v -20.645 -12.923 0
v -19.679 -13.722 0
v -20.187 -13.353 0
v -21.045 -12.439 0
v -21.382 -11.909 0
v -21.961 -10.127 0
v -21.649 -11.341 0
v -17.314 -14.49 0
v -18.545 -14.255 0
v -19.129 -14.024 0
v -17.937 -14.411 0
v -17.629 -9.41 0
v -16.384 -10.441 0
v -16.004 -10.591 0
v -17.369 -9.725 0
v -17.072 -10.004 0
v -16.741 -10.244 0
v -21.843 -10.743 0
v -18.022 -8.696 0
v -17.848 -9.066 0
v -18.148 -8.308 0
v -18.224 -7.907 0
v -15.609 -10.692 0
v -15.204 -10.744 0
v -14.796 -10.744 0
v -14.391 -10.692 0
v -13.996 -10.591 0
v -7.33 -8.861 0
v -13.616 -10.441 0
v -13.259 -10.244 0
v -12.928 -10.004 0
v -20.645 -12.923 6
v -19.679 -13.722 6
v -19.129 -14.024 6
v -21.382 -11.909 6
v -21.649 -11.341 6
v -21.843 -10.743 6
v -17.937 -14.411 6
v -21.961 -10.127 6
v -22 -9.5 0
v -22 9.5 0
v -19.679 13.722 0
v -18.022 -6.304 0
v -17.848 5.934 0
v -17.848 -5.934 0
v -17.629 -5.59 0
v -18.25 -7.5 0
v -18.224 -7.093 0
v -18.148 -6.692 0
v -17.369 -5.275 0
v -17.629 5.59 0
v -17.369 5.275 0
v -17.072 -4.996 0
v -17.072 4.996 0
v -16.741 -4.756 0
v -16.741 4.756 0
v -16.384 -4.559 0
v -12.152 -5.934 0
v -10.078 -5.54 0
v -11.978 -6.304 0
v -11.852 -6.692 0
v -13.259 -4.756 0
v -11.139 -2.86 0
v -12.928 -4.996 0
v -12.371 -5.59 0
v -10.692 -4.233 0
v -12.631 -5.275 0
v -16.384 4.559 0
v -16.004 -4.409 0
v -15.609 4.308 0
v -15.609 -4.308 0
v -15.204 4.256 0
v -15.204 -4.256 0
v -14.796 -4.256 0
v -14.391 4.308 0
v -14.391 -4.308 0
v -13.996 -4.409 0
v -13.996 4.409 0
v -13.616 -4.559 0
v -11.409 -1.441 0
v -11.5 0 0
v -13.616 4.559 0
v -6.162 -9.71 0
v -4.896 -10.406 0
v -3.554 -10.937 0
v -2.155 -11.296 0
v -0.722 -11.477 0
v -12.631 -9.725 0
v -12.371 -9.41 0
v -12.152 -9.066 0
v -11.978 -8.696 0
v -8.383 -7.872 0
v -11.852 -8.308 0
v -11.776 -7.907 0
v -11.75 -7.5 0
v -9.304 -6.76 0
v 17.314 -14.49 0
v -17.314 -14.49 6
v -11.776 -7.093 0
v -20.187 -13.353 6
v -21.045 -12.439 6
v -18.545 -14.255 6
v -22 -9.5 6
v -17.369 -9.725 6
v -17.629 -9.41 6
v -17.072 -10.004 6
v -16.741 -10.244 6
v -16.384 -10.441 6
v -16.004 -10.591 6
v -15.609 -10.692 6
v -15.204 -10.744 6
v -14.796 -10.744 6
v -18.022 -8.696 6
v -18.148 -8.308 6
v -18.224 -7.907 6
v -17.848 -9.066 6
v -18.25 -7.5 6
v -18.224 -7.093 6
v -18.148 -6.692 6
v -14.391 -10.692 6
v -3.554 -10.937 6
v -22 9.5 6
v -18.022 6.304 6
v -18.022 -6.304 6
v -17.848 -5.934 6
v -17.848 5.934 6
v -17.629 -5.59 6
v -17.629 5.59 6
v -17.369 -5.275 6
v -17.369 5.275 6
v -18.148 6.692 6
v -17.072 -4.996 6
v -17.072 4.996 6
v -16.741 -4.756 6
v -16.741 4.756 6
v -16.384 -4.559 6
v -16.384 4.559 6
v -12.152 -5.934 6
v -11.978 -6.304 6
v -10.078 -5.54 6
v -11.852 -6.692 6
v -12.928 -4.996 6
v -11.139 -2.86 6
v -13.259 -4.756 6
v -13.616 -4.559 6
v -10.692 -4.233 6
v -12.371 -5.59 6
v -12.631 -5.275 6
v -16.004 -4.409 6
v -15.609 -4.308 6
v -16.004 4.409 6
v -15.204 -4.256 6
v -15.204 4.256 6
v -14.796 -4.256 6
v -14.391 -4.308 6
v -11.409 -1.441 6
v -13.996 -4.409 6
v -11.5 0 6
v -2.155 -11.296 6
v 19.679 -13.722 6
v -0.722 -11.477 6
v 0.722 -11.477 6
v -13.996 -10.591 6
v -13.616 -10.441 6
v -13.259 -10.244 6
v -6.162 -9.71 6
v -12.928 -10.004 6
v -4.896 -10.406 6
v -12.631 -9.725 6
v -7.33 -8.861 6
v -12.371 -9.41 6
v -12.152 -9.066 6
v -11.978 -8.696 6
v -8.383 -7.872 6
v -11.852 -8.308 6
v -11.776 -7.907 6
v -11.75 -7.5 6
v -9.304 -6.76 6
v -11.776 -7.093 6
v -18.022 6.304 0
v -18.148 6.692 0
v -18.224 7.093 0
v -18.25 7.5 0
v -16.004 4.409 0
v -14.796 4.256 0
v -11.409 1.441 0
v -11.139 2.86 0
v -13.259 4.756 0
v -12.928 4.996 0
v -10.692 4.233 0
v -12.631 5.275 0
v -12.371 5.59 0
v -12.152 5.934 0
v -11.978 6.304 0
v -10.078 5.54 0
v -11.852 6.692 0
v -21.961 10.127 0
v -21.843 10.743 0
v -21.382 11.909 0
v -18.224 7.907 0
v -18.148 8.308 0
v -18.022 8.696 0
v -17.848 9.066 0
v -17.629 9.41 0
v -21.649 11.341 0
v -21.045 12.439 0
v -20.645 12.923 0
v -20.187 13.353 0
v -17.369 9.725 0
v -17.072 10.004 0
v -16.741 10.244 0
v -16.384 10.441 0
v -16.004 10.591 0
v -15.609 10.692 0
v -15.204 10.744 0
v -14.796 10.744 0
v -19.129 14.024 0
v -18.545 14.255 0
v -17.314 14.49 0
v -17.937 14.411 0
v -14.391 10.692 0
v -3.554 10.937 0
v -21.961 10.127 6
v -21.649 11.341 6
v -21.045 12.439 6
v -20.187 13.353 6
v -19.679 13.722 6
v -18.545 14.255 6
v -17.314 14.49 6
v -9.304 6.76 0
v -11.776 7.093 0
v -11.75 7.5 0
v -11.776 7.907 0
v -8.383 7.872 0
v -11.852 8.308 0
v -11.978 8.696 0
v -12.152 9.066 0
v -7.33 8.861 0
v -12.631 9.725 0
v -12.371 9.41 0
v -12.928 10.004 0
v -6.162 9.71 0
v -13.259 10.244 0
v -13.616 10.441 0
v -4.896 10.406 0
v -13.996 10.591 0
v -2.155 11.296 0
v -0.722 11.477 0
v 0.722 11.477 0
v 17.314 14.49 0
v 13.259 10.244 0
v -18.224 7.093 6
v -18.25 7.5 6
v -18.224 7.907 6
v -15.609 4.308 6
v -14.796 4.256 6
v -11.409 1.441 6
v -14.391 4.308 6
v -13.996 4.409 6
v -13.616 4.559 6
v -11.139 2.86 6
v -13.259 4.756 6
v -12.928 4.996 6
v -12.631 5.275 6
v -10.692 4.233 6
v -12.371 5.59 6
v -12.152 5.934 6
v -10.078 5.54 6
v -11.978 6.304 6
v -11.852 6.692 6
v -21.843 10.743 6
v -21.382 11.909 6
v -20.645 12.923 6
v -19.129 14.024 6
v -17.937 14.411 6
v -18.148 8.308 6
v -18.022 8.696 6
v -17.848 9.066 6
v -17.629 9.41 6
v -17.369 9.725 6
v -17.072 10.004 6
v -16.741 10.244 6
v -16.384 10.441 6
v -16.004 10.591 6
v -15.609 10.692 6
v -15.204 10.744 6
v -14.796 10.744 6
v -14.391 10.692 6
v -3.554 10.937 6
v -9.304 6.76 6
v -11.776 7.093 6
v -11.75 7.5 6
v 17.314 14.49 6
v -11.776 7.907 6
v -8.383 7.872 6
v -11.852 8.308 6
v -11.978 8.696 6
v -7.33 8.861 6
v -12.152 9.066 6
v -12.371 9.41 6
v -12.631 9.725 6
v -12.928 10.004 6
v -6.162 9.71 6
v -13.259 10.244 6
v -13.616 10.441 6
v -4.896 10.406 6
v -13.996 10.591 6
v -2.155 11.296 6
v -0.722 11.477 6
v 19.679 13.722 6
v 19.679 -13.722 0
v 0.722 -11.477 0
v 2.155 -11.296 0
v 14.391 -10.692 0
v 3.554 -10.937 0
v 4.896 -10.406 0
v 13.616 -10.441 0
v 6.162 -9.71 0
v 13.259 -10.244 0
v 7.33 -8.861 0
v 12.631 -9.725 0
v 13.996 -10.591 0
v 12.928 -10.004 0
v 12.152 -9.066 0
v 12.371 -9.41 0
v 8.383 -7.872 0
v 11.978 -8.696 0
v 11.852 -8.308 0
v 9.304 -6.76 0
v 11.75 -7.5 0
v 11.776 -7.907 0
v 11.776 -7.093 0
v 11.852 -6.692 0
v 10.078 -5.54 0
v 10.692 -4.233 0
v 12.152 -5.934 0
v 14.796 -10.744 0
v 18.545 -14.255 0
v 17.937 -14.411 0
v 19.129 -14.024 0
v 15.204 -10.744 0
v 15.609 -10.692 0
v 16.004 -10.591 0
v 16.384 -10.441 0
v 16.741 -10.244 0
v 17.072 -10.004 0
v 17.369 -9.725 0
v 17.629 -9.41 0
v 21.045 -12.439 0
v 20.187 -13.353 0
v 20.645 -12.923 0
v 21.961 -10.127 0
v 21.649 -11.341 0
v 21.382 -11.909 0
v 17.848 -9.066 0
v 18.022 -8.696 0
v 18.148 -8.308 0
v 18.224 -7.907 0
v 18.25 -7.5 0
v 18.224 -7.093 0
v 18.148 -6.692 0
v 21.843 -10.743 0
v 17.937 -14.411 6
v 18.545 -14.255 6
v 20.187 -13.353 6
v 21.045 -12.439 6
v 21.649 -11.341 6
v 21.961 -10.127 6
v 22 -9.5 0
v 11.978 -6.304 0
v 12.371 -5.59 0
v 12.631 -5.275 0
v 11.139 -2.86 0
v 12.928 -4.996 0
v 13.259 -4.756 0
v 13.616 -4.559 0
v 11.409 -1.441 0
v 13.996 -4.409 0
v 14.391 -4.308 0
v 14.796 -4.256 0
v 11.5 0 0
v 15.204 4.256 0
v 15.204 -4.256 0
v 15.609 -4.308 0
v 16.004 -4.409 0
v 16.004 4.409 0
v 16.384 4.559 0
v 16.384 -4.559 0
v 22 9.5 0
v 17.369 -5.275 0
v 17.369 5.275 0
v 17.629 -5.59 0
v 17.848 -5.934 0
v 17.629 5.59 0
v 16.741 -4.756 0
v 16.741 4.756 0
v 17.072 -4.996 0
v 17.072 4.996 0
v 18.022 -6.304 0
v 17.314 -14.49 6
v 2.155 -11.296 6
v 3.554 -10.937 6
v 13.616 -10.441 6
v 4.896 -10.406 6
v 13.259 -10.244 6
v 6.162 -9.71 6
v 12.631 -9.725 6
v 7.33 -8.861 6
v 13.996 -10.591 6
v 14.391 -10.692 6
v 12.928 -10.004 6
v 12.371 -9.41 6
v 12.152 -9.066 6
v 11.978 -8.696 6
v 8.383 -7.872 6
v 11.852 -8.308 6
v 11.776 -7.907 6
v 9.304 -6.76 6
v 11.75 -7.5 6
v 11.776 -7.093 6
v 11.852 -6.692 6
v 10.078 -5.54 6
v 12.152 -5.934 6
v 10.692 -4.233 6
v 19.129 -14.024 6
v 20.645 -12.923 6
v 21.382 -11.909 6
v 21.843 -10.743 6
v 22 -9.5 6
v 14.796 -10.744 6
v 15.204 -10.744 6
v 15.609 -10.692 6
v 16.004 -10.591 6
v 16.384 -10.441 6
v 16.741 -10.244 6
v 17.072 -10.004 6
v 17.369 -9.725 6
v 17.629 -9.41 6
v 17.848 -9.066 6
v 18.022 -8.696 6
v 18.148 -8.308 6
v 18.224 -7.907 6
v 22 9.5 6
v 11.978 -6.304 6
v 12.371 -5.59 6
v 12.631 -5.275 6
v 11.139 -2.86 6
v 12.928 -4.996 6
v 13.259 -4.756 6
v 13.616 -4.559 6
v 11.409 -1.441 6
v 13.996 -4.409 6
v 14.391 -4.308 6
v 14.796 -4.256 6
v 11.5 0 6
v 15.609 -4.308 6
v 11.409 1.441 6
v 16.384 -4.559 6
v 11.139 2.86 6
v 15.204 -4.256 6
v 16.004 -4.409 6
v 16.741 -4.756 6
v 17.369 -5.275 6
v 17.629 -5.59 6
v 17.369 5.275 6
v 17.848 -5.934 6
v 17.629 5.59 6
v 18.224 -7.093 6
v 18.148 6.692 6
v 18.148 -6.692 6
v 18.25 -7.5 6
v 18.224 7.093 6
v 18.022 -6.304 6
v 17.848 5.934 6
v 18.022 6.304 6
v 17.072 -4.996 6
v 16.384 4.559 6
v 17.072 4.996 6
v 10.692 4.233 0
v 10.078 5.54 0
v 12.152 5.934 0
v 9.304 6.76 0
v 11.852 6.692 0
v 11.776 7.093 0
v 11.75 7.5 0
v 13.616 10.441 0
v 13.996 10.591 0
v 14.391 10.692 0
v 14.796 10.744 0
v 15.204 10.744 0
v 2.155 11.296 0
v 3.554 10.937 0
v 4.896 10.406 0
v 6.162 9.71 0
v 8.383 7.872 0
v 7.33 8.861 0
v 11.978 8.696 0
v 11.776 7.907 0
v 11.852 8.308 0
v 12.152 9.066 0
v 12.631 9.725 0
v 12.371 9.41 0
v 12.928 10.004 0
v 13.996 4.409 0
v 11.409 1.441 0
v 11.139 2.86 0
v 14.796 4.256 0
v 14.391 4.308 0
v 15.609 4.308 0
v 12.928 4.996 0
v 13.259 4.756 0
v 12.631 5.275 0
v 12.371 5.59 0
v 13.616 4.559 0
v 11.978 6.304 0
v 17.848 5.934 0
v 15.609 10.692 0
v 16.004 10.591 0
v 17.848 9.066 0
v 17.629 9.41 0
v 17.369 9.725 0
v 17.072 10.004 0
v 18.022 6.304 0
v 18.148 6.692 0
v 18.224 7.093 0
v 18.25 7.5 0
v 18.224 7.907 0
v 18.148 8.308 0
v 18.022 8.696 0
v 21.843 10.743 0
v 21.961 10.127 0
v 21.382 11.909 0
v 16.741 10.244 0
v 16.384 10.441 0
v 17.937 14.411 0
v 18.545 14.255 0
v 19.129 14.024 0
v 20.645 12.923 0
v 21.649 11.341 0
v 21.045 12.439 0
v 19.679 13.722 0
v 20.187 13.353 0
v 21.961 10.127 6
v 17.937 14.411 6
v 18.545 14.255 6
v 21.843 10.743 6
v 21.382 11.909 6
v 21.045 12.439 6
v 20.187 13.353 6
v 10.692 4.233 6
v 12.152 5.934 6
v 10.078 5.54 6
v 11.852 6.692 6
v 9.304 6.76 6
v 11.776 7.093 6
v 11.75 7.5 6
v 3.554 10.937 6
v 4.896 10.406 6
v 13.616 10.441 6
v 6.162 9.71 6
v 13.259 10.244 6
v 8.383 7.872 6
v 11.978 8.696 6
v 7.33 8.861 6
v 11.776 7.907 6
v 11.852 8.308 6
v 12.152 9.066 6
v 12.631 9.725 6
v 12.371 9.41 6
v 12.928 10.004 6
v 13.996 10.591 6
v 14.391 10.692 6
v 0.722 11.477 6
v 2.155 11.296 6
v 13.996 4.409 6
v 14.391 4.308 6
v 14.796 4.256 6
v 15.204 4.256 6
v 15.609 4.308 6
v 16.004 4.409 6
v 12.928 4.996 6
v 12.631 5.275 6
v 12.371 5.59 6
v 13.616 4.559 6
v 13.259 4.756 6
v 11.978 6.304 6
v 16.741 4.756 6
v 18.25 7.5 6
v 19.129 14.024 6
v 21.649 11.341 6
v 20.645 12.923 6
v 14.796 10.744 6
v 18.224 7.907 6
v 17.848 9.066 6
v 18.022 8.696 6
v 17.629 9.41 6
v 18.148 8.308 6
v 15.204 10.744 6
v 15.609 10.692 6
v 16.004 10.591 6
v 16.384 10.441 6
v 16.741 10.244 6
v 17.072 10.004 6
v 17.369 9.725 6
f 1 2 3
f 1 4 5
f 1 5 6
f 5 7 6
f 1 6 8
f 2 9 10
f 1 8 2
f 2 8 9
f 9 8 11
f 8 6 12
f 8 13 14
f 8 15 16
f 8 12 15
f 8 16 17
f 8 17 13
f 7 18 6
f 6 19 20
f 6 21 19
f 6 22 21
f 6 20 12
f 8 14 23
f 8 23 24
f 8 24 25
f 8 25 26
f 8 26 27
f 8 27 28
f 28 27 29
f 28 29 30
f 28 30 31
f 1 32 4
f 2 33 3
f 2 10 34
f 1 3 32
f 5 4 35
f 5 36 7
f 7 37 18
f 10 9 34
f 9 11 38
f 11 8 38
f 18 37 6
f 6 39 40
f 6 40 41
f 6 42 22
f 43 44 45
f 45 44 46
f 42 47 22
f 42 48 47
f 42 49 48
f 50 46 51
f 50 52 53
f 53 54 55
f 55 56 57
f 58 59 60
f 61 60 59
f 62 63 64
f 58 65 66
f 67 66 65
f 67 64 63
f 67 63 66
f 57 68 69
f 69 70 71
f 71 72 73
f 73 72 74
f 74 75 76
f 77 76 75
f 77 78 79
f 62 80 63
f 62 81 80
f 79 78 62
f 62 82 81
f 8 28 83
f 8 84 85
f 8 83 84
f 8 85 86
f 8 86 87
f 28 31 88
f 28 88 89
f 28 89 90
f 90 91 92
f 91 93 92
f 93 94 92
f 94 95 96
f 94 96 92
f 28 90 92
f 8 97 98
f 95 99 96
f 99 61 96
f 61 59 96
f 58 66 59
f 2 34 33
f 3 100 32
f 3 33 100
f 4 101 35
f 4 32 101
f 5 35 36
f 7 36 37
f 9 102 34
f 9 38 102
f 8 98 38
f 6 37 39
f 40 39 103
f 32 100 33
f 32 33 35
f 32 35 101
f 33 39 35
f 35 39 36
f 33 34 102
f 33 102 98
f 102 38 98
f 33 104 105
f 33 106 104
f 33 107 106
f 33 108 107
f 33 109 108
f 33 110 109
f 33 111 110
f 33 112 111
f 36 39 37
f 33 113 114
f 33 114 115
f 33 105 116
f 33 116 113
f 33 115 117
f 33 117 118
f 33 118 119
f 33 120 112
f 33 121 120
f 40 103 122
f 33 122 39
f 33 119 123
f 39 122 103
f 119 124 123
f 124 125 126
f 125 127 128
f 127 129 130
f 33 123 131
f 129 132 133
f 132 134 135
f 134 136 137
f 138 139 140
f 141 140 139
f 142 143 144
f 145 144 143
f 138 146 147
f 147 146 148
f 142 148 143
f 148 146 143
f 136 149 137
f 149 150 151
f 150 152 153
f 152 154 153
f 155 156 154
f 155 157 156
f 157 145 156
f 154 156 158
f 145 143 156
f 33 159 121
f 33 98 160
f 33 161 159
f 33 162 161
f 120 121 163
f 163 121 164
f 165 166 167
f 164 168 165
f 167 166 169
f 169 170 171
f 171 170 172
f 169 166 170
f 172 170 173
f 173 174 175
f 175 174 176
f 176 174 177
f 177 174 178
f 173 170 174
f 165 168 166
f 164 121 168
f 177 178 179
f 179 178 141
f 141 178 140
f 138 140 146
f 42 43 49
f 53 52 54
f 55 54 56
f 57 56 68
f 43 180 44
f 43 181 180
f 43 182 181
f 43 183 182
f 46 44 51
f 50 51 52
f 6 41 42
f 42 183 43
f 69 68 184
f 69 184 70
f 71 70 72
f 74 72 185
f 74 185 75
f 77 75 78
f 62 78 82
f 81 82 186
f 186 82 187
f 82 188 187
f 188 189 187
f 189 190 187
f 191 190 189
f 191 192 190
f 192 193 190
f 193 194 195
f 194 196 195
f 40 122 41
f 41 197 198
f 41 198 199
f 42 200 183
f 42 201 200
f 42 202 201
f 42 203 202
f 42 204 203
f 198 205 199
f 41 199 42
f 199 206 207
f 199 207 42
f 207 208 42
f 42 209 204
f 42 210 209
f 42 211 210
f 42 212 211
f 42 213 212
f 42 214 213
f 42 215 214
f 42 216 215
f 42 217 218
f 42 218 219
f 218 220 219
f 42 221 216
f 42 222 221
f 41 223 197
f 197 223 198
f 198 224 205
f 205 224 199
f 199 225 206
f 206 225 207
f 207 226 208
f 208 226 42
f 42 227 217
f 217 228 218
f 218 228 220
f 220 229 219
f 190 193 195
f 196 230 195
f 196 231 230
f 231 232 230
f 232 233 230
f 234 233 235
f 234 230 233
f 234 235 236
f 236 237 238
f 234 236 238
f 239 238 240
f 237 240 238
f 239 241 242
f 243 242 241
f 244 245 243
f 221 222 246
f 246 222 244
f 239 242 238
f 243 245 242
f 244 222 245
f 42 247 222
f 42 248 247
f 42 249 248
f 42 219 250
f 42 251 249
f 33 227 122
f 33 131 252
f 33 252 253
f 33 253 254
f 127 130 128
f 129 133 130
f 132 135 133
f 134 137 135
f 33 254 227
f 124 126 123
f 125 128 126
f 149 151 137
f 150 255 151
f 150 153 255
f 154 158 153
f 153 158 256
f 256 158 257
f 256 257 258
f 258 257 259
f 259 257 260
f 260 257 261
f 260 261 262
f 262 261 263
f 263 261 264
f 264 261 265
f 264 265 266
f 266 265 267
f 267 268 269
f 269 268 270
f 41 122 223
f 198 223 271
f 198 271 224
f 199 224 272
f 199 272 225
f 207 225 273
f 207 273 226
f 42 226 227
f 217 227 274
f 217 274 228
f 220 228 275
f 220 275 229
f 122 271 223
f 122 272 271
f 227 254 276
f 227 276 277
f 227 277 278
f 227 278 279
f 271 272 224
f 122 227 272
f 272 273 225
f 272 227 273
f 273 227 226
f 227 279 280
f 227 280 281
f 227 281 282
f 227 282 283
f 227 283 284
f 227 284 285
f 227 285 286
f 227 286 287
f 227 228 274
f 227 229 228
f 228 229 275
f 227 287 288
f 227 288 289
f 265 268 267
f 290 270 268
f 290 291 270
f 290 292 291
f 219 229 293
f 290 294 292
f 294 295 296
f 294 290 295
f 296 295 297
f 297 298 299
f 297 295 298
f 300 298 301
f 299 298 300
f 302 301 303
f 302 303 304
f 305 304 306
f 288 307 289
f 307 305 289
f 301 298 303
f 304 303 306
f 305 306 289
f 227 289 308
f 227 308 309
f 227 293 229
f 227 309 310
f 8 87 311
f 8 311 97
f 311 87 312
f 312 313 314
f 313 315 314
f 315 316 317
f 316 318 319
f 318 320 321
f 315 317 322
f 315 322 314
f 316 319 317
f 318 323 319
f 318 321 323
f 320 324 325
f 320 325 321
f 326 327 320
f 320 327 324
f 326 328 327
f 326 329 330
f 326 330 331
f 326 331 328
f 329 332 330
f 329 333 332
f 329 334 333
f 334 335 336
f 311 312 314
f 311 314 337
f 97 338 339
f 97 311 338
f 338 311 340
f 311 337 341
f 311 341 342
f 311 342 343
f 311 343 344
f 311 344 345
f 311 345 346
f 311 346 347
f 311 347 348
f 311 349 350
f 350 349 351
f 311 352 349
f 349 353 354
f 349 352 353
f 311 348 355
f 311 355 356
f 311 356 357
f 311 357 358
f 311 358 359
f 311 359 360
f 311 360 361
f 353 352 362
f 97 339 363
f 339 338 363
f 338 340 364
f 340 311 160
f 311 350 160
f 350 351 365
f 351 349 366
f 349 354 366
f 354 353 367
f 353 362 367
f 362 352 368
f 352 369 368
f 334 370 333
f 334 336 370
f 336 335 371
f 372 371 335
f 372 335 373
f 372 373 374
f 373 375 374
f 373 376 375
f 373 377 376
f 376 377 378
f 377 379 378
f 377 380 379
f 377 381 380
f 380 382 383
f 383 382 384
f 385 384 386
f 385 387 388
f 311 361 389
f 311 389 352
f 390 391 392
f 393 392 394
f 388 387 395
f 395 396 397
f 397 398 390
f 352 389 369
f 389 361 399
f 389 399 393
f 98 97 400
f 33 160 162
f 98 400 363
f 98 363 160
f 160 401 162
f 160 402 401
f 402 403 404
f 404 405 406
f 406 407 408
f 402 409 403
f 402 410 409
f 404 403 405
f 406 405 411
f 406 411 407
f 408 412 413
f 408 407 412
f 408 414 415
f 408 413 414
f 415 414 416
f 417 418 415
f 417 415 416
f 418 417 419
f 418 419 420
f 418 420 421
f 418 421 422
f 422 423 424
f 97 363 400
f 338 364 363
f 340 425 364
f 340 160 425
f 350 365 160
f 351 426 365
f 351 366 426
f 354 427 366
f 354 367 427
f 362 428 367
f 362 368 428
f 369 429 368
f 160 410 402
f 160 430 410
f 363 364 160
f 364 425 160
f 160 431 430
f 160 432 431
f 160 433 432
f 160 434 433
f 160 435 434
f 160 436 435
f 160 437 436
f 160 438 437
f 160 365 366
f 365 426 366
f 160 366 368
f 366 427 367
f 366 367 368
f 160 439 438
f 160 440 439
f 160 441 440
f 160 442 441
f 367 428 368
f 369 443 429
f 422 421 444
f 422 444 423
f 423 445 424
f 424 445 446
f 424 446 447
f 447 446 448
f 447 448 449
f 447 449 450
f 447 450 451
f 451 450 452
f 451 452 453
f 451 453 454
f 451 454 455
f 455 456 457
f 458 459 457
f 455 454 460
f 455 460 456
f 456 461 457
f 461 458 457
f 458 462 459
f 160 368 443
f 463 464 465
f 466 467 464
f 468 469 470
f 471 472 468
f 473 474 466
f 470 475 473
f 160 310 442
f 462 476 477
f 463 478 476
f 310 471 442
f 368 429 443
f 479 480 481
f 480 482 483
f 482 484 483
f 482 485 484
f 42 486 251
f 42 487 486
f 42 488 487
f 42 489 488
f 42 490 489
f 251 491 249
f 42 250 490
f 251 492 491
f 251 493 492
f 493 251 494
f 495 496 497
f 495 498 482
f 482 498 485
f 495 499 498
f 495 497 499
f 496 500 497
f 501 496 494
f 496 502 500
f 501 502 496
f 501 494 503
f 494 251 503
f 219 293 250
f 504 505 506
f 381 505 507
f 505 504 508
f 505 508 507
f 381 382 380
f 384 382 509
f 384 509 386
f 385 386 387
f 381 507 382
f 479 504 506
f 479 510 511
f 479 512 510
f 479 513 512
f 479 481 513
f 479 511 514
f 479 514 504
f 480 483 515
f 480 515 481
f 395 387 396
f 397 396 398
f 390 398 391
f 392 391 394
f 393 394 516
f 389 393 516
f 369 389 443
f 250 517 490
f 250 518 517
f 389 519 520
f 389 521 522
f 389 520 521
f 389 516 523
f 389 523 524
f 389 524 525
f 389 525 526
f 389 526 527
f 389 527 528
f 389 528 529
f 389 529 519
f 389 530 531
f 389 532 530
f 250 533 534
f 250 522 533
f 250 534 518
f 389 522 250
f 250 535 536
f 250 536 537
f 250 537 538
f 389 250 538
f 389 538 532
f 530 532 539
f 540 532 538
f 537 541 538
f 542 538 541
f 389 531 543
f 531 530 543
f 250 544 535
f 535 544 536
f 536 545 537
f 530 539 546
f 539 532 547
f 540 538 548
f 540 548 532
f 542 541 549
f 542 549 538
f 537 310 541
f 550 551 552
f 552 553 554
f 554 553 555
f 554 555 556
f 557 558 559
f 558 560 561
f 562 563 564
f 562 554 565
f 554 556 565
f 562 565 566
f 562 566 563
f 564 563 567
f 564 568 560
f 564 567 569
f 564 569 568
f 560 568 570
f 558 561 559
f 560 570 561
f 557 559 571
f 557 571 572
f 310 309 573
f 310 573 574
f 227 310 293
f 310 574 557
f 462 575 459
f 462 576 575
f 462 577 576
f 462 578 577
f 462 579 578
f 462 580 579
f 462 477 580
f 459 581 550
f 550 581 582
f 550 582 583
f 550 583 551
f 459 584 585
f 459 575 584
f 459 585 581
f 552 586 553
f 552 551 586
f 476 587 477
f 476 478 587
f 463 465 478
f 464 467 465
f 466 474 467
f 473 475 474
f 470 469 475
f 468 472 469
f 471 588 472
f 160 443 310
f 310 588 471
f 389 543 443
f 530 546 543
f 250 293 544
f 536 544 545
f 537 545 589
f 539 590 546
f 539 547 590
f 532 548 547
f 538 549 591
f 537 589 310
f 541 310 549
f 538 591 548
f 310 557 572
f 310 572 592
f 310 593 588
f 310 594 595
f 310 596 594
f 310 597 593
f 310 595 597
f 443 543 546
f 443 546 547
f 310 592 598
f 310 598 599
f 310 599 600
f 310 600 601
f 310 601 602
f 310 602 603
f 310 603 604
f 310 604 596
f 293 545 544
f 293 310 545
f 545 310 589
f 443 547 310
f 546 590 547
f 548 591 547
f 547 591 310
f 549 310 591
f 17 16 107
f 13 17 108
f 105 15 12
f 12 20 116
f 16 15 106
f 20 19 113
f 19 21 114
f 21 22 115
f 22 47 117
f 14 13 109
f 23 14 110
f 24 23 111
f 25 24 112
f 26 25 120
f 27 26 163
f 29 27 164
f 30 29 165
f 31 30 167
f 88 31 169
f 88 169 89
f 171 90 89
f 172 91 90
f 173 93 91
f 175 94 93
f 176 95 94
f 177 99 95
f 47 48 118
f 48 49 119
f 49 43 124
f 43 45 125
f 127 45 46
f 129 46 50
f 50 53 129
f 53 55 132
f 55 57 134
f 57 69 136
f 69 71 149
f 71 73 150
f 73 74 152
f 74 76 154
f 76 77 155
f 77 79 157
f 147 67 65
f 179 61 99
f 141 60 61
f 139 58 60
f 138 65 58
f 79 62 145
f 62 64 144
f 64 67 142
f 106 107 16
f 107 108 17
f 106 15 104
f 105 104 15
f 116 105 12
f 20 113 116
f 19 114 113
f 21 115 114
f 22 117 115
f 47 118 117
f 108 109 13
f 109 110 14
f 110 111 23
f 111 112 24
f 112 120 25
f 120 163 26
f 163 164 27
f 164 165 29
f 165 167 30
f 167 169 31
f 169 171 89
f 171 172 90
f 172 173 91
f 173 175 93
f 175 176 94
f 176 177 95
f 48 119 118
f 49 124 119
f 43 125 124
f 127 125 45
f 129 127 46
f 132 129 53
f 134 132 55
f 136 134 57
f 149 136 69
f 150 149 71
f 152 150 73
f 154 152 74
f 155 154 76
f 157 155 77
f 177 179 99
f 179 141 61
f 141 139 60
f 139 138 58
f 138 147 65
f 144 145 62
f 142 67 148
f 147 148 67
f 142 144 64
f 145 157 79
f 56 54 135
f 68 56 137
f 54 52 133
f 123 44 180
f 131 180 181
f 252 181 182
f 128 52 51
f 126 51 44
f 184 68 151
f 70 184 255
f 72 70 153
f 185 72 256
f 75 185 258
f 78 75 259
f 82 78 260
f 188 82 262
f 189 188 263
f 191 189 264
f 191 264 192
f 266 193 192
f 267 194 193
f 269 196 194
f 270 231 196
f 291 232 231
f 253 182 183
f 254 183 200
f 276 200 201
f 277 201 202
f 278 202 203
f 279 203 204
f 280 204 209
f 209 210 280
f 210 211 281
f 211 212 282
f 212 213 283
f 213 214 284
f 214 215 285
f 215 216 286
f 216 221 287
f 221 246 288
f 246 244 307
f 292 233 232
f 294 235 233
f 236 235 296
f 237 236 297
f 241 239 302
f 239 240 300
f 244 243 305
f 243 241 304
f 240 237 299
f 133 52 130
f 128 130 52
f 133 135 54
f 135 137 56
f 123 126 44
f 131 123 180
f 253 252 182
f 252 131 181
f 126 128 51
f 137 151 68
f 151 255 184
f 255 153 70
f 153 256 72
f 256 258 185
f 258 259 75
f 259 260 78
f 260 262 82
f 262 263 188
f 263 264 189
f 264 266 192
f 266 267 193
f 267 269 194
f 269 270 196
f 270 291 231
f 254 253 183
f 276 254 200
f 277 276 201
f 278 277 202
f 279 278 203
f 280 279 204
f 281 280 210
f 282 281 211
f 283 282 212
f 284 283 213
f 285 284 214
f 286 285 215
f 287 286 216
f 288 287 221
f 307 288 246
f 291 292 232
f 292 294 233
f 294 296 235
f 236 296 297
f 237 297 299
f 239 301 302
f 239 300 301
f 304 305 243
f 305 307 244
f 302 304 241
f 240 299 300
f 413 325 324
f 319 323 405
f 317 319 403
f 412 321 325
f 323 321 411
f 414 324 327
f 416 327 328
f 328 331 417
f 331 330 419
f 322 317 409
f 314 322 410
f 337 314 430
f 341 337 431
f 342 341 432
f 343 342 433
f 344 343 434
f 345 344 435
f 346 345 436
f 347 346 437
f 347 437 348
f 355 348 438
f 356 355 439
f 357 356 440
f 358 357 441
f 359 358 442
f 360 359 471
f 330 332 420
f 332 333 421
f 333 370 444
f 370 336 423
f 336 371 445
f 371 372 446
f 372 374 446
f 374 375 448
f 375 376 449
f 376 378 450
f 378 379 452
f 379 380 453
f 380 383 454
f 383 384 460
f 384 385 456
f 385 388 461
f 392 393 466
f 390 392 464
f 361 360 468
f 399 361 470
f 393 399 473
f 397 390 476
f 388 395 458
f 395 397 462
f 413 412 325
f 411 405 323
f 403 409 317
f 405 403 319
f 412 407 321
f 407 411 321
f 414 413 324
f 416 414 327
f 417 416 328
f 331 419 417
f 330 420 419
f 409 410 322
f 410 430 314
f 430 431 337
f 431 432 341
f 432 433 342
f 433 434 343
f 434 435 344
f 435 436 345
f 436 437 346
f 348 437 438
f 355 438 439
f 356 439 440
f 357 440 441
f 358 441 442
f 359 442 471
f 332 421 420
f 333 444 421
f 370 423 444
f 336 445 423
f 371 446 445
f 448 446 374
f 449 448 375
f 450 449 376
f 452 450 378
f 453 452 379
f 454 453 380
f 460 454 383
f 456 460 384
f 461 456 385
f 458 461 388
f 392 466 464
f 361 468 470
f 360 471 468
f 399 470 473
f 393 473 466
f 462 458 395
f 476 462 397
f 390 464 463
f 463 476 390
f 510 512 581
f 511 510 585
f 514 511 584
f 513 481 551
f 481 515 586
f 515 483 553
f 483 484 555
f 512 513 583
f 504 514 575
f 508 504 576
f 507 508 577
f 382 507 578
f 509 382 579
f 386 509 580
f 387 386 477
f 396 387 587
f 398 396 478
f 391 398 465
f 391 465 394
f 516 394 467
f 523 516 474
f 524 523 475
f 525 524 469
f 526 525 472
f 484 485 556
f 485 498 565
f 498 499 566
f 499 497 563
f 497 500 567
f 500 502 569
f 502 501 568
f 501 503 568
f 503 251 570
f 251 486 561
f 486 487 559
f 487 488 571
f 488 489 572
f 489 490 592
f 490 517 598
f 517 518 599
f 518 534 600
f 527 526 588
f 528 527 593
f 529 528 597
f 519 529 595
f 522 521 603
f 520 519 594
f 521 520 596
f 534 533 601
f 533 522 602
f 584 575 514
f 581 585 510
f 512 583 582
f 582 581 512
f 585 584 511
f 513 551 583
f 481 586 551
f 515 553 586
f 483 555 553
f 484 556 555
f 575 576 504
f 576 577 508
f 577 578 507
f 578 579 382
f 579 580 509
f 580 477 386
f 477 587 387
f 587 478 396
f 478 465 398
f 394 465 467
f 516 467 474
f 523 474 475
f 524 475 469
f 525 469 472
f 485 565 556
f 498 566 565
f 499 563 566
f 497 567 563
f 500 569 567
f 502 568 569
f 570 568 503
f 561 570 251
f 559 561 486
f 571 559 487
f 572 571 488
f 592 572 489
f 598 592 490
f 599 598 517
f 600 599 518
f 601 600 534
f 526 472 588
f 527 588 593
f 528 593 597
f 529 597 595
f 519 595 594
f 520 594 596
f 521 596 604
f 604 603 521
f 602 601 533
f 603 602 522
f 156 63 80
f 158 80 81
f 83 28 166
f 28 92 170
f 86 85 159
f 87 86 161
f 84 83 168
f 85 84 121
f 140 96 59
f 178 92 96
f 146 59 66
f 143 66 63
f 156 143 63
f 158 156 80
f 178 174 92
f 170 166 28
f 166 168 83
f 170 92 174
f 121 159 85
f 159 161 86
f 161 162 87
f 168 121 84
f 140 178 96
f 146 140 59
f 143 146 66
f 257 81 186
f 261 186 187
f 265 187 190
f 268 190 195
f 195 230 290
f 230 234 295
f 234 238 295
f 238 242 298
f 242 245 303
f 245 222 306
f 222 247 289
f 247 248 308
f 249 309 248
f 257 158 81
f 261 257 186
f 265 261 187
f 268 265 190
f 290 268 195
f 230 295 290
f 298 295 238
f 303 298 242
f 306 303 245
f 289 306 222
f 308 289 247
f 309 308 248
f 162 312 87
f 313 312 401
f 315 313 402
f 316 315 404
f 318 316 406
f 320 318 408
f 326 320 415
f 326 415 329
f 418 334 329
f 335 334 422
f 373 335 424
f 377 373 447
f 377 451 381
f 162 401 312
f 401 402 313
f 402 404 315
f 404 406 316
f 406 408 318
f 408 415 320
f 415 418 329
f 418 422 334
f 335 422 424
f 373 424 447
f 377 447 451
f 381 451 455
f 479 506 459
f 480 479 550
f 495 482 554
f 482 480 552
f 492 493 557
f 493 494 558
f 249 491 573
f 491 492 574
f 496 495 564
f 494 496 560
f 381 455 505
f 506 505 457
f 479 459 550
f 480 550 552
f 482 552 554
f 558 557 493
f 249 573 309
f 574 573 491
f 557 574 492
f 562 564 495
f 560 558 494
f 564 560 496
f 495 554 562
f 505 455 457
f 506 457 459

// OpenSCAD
$fn = 50;

difference() {
	union() {
		hull() {
			translate(v = [-17.0, 9.5, 0]) {
				cylinder(h = 6, r = 5);
			}
			translate(v = [17.0, 9.5, 0]) {
				cylinder(h = 6, r = 5);
			}
			translate(v = [-17.0, -9.5, 0]) {
				cylinder(h = 6, r = 5);
			}
			translate(v = [17.0, -9.5, 0]) {
				cylinder(h = 6, r = 5);
			}
		}
	}
	union() {
		translate(v = [-15.0, -7.5, 0]) {
			cylinder(h = 6, r = 3.25);
		}
		translate(v = [-15.0, 7.5, 0]) {
			cylinder(h = 6, r = 3.25);
		}
		translate(v = [15.0, -7.5, 0]) {
			cylinder(h = 6, r = 3.25);
		}
		translate(v = [15.0, 7.5, 0]) {
			cylinder(h = 6, r = 3.25);
		}
		cylinder(h = 6, r = 11.5);
	}
}
